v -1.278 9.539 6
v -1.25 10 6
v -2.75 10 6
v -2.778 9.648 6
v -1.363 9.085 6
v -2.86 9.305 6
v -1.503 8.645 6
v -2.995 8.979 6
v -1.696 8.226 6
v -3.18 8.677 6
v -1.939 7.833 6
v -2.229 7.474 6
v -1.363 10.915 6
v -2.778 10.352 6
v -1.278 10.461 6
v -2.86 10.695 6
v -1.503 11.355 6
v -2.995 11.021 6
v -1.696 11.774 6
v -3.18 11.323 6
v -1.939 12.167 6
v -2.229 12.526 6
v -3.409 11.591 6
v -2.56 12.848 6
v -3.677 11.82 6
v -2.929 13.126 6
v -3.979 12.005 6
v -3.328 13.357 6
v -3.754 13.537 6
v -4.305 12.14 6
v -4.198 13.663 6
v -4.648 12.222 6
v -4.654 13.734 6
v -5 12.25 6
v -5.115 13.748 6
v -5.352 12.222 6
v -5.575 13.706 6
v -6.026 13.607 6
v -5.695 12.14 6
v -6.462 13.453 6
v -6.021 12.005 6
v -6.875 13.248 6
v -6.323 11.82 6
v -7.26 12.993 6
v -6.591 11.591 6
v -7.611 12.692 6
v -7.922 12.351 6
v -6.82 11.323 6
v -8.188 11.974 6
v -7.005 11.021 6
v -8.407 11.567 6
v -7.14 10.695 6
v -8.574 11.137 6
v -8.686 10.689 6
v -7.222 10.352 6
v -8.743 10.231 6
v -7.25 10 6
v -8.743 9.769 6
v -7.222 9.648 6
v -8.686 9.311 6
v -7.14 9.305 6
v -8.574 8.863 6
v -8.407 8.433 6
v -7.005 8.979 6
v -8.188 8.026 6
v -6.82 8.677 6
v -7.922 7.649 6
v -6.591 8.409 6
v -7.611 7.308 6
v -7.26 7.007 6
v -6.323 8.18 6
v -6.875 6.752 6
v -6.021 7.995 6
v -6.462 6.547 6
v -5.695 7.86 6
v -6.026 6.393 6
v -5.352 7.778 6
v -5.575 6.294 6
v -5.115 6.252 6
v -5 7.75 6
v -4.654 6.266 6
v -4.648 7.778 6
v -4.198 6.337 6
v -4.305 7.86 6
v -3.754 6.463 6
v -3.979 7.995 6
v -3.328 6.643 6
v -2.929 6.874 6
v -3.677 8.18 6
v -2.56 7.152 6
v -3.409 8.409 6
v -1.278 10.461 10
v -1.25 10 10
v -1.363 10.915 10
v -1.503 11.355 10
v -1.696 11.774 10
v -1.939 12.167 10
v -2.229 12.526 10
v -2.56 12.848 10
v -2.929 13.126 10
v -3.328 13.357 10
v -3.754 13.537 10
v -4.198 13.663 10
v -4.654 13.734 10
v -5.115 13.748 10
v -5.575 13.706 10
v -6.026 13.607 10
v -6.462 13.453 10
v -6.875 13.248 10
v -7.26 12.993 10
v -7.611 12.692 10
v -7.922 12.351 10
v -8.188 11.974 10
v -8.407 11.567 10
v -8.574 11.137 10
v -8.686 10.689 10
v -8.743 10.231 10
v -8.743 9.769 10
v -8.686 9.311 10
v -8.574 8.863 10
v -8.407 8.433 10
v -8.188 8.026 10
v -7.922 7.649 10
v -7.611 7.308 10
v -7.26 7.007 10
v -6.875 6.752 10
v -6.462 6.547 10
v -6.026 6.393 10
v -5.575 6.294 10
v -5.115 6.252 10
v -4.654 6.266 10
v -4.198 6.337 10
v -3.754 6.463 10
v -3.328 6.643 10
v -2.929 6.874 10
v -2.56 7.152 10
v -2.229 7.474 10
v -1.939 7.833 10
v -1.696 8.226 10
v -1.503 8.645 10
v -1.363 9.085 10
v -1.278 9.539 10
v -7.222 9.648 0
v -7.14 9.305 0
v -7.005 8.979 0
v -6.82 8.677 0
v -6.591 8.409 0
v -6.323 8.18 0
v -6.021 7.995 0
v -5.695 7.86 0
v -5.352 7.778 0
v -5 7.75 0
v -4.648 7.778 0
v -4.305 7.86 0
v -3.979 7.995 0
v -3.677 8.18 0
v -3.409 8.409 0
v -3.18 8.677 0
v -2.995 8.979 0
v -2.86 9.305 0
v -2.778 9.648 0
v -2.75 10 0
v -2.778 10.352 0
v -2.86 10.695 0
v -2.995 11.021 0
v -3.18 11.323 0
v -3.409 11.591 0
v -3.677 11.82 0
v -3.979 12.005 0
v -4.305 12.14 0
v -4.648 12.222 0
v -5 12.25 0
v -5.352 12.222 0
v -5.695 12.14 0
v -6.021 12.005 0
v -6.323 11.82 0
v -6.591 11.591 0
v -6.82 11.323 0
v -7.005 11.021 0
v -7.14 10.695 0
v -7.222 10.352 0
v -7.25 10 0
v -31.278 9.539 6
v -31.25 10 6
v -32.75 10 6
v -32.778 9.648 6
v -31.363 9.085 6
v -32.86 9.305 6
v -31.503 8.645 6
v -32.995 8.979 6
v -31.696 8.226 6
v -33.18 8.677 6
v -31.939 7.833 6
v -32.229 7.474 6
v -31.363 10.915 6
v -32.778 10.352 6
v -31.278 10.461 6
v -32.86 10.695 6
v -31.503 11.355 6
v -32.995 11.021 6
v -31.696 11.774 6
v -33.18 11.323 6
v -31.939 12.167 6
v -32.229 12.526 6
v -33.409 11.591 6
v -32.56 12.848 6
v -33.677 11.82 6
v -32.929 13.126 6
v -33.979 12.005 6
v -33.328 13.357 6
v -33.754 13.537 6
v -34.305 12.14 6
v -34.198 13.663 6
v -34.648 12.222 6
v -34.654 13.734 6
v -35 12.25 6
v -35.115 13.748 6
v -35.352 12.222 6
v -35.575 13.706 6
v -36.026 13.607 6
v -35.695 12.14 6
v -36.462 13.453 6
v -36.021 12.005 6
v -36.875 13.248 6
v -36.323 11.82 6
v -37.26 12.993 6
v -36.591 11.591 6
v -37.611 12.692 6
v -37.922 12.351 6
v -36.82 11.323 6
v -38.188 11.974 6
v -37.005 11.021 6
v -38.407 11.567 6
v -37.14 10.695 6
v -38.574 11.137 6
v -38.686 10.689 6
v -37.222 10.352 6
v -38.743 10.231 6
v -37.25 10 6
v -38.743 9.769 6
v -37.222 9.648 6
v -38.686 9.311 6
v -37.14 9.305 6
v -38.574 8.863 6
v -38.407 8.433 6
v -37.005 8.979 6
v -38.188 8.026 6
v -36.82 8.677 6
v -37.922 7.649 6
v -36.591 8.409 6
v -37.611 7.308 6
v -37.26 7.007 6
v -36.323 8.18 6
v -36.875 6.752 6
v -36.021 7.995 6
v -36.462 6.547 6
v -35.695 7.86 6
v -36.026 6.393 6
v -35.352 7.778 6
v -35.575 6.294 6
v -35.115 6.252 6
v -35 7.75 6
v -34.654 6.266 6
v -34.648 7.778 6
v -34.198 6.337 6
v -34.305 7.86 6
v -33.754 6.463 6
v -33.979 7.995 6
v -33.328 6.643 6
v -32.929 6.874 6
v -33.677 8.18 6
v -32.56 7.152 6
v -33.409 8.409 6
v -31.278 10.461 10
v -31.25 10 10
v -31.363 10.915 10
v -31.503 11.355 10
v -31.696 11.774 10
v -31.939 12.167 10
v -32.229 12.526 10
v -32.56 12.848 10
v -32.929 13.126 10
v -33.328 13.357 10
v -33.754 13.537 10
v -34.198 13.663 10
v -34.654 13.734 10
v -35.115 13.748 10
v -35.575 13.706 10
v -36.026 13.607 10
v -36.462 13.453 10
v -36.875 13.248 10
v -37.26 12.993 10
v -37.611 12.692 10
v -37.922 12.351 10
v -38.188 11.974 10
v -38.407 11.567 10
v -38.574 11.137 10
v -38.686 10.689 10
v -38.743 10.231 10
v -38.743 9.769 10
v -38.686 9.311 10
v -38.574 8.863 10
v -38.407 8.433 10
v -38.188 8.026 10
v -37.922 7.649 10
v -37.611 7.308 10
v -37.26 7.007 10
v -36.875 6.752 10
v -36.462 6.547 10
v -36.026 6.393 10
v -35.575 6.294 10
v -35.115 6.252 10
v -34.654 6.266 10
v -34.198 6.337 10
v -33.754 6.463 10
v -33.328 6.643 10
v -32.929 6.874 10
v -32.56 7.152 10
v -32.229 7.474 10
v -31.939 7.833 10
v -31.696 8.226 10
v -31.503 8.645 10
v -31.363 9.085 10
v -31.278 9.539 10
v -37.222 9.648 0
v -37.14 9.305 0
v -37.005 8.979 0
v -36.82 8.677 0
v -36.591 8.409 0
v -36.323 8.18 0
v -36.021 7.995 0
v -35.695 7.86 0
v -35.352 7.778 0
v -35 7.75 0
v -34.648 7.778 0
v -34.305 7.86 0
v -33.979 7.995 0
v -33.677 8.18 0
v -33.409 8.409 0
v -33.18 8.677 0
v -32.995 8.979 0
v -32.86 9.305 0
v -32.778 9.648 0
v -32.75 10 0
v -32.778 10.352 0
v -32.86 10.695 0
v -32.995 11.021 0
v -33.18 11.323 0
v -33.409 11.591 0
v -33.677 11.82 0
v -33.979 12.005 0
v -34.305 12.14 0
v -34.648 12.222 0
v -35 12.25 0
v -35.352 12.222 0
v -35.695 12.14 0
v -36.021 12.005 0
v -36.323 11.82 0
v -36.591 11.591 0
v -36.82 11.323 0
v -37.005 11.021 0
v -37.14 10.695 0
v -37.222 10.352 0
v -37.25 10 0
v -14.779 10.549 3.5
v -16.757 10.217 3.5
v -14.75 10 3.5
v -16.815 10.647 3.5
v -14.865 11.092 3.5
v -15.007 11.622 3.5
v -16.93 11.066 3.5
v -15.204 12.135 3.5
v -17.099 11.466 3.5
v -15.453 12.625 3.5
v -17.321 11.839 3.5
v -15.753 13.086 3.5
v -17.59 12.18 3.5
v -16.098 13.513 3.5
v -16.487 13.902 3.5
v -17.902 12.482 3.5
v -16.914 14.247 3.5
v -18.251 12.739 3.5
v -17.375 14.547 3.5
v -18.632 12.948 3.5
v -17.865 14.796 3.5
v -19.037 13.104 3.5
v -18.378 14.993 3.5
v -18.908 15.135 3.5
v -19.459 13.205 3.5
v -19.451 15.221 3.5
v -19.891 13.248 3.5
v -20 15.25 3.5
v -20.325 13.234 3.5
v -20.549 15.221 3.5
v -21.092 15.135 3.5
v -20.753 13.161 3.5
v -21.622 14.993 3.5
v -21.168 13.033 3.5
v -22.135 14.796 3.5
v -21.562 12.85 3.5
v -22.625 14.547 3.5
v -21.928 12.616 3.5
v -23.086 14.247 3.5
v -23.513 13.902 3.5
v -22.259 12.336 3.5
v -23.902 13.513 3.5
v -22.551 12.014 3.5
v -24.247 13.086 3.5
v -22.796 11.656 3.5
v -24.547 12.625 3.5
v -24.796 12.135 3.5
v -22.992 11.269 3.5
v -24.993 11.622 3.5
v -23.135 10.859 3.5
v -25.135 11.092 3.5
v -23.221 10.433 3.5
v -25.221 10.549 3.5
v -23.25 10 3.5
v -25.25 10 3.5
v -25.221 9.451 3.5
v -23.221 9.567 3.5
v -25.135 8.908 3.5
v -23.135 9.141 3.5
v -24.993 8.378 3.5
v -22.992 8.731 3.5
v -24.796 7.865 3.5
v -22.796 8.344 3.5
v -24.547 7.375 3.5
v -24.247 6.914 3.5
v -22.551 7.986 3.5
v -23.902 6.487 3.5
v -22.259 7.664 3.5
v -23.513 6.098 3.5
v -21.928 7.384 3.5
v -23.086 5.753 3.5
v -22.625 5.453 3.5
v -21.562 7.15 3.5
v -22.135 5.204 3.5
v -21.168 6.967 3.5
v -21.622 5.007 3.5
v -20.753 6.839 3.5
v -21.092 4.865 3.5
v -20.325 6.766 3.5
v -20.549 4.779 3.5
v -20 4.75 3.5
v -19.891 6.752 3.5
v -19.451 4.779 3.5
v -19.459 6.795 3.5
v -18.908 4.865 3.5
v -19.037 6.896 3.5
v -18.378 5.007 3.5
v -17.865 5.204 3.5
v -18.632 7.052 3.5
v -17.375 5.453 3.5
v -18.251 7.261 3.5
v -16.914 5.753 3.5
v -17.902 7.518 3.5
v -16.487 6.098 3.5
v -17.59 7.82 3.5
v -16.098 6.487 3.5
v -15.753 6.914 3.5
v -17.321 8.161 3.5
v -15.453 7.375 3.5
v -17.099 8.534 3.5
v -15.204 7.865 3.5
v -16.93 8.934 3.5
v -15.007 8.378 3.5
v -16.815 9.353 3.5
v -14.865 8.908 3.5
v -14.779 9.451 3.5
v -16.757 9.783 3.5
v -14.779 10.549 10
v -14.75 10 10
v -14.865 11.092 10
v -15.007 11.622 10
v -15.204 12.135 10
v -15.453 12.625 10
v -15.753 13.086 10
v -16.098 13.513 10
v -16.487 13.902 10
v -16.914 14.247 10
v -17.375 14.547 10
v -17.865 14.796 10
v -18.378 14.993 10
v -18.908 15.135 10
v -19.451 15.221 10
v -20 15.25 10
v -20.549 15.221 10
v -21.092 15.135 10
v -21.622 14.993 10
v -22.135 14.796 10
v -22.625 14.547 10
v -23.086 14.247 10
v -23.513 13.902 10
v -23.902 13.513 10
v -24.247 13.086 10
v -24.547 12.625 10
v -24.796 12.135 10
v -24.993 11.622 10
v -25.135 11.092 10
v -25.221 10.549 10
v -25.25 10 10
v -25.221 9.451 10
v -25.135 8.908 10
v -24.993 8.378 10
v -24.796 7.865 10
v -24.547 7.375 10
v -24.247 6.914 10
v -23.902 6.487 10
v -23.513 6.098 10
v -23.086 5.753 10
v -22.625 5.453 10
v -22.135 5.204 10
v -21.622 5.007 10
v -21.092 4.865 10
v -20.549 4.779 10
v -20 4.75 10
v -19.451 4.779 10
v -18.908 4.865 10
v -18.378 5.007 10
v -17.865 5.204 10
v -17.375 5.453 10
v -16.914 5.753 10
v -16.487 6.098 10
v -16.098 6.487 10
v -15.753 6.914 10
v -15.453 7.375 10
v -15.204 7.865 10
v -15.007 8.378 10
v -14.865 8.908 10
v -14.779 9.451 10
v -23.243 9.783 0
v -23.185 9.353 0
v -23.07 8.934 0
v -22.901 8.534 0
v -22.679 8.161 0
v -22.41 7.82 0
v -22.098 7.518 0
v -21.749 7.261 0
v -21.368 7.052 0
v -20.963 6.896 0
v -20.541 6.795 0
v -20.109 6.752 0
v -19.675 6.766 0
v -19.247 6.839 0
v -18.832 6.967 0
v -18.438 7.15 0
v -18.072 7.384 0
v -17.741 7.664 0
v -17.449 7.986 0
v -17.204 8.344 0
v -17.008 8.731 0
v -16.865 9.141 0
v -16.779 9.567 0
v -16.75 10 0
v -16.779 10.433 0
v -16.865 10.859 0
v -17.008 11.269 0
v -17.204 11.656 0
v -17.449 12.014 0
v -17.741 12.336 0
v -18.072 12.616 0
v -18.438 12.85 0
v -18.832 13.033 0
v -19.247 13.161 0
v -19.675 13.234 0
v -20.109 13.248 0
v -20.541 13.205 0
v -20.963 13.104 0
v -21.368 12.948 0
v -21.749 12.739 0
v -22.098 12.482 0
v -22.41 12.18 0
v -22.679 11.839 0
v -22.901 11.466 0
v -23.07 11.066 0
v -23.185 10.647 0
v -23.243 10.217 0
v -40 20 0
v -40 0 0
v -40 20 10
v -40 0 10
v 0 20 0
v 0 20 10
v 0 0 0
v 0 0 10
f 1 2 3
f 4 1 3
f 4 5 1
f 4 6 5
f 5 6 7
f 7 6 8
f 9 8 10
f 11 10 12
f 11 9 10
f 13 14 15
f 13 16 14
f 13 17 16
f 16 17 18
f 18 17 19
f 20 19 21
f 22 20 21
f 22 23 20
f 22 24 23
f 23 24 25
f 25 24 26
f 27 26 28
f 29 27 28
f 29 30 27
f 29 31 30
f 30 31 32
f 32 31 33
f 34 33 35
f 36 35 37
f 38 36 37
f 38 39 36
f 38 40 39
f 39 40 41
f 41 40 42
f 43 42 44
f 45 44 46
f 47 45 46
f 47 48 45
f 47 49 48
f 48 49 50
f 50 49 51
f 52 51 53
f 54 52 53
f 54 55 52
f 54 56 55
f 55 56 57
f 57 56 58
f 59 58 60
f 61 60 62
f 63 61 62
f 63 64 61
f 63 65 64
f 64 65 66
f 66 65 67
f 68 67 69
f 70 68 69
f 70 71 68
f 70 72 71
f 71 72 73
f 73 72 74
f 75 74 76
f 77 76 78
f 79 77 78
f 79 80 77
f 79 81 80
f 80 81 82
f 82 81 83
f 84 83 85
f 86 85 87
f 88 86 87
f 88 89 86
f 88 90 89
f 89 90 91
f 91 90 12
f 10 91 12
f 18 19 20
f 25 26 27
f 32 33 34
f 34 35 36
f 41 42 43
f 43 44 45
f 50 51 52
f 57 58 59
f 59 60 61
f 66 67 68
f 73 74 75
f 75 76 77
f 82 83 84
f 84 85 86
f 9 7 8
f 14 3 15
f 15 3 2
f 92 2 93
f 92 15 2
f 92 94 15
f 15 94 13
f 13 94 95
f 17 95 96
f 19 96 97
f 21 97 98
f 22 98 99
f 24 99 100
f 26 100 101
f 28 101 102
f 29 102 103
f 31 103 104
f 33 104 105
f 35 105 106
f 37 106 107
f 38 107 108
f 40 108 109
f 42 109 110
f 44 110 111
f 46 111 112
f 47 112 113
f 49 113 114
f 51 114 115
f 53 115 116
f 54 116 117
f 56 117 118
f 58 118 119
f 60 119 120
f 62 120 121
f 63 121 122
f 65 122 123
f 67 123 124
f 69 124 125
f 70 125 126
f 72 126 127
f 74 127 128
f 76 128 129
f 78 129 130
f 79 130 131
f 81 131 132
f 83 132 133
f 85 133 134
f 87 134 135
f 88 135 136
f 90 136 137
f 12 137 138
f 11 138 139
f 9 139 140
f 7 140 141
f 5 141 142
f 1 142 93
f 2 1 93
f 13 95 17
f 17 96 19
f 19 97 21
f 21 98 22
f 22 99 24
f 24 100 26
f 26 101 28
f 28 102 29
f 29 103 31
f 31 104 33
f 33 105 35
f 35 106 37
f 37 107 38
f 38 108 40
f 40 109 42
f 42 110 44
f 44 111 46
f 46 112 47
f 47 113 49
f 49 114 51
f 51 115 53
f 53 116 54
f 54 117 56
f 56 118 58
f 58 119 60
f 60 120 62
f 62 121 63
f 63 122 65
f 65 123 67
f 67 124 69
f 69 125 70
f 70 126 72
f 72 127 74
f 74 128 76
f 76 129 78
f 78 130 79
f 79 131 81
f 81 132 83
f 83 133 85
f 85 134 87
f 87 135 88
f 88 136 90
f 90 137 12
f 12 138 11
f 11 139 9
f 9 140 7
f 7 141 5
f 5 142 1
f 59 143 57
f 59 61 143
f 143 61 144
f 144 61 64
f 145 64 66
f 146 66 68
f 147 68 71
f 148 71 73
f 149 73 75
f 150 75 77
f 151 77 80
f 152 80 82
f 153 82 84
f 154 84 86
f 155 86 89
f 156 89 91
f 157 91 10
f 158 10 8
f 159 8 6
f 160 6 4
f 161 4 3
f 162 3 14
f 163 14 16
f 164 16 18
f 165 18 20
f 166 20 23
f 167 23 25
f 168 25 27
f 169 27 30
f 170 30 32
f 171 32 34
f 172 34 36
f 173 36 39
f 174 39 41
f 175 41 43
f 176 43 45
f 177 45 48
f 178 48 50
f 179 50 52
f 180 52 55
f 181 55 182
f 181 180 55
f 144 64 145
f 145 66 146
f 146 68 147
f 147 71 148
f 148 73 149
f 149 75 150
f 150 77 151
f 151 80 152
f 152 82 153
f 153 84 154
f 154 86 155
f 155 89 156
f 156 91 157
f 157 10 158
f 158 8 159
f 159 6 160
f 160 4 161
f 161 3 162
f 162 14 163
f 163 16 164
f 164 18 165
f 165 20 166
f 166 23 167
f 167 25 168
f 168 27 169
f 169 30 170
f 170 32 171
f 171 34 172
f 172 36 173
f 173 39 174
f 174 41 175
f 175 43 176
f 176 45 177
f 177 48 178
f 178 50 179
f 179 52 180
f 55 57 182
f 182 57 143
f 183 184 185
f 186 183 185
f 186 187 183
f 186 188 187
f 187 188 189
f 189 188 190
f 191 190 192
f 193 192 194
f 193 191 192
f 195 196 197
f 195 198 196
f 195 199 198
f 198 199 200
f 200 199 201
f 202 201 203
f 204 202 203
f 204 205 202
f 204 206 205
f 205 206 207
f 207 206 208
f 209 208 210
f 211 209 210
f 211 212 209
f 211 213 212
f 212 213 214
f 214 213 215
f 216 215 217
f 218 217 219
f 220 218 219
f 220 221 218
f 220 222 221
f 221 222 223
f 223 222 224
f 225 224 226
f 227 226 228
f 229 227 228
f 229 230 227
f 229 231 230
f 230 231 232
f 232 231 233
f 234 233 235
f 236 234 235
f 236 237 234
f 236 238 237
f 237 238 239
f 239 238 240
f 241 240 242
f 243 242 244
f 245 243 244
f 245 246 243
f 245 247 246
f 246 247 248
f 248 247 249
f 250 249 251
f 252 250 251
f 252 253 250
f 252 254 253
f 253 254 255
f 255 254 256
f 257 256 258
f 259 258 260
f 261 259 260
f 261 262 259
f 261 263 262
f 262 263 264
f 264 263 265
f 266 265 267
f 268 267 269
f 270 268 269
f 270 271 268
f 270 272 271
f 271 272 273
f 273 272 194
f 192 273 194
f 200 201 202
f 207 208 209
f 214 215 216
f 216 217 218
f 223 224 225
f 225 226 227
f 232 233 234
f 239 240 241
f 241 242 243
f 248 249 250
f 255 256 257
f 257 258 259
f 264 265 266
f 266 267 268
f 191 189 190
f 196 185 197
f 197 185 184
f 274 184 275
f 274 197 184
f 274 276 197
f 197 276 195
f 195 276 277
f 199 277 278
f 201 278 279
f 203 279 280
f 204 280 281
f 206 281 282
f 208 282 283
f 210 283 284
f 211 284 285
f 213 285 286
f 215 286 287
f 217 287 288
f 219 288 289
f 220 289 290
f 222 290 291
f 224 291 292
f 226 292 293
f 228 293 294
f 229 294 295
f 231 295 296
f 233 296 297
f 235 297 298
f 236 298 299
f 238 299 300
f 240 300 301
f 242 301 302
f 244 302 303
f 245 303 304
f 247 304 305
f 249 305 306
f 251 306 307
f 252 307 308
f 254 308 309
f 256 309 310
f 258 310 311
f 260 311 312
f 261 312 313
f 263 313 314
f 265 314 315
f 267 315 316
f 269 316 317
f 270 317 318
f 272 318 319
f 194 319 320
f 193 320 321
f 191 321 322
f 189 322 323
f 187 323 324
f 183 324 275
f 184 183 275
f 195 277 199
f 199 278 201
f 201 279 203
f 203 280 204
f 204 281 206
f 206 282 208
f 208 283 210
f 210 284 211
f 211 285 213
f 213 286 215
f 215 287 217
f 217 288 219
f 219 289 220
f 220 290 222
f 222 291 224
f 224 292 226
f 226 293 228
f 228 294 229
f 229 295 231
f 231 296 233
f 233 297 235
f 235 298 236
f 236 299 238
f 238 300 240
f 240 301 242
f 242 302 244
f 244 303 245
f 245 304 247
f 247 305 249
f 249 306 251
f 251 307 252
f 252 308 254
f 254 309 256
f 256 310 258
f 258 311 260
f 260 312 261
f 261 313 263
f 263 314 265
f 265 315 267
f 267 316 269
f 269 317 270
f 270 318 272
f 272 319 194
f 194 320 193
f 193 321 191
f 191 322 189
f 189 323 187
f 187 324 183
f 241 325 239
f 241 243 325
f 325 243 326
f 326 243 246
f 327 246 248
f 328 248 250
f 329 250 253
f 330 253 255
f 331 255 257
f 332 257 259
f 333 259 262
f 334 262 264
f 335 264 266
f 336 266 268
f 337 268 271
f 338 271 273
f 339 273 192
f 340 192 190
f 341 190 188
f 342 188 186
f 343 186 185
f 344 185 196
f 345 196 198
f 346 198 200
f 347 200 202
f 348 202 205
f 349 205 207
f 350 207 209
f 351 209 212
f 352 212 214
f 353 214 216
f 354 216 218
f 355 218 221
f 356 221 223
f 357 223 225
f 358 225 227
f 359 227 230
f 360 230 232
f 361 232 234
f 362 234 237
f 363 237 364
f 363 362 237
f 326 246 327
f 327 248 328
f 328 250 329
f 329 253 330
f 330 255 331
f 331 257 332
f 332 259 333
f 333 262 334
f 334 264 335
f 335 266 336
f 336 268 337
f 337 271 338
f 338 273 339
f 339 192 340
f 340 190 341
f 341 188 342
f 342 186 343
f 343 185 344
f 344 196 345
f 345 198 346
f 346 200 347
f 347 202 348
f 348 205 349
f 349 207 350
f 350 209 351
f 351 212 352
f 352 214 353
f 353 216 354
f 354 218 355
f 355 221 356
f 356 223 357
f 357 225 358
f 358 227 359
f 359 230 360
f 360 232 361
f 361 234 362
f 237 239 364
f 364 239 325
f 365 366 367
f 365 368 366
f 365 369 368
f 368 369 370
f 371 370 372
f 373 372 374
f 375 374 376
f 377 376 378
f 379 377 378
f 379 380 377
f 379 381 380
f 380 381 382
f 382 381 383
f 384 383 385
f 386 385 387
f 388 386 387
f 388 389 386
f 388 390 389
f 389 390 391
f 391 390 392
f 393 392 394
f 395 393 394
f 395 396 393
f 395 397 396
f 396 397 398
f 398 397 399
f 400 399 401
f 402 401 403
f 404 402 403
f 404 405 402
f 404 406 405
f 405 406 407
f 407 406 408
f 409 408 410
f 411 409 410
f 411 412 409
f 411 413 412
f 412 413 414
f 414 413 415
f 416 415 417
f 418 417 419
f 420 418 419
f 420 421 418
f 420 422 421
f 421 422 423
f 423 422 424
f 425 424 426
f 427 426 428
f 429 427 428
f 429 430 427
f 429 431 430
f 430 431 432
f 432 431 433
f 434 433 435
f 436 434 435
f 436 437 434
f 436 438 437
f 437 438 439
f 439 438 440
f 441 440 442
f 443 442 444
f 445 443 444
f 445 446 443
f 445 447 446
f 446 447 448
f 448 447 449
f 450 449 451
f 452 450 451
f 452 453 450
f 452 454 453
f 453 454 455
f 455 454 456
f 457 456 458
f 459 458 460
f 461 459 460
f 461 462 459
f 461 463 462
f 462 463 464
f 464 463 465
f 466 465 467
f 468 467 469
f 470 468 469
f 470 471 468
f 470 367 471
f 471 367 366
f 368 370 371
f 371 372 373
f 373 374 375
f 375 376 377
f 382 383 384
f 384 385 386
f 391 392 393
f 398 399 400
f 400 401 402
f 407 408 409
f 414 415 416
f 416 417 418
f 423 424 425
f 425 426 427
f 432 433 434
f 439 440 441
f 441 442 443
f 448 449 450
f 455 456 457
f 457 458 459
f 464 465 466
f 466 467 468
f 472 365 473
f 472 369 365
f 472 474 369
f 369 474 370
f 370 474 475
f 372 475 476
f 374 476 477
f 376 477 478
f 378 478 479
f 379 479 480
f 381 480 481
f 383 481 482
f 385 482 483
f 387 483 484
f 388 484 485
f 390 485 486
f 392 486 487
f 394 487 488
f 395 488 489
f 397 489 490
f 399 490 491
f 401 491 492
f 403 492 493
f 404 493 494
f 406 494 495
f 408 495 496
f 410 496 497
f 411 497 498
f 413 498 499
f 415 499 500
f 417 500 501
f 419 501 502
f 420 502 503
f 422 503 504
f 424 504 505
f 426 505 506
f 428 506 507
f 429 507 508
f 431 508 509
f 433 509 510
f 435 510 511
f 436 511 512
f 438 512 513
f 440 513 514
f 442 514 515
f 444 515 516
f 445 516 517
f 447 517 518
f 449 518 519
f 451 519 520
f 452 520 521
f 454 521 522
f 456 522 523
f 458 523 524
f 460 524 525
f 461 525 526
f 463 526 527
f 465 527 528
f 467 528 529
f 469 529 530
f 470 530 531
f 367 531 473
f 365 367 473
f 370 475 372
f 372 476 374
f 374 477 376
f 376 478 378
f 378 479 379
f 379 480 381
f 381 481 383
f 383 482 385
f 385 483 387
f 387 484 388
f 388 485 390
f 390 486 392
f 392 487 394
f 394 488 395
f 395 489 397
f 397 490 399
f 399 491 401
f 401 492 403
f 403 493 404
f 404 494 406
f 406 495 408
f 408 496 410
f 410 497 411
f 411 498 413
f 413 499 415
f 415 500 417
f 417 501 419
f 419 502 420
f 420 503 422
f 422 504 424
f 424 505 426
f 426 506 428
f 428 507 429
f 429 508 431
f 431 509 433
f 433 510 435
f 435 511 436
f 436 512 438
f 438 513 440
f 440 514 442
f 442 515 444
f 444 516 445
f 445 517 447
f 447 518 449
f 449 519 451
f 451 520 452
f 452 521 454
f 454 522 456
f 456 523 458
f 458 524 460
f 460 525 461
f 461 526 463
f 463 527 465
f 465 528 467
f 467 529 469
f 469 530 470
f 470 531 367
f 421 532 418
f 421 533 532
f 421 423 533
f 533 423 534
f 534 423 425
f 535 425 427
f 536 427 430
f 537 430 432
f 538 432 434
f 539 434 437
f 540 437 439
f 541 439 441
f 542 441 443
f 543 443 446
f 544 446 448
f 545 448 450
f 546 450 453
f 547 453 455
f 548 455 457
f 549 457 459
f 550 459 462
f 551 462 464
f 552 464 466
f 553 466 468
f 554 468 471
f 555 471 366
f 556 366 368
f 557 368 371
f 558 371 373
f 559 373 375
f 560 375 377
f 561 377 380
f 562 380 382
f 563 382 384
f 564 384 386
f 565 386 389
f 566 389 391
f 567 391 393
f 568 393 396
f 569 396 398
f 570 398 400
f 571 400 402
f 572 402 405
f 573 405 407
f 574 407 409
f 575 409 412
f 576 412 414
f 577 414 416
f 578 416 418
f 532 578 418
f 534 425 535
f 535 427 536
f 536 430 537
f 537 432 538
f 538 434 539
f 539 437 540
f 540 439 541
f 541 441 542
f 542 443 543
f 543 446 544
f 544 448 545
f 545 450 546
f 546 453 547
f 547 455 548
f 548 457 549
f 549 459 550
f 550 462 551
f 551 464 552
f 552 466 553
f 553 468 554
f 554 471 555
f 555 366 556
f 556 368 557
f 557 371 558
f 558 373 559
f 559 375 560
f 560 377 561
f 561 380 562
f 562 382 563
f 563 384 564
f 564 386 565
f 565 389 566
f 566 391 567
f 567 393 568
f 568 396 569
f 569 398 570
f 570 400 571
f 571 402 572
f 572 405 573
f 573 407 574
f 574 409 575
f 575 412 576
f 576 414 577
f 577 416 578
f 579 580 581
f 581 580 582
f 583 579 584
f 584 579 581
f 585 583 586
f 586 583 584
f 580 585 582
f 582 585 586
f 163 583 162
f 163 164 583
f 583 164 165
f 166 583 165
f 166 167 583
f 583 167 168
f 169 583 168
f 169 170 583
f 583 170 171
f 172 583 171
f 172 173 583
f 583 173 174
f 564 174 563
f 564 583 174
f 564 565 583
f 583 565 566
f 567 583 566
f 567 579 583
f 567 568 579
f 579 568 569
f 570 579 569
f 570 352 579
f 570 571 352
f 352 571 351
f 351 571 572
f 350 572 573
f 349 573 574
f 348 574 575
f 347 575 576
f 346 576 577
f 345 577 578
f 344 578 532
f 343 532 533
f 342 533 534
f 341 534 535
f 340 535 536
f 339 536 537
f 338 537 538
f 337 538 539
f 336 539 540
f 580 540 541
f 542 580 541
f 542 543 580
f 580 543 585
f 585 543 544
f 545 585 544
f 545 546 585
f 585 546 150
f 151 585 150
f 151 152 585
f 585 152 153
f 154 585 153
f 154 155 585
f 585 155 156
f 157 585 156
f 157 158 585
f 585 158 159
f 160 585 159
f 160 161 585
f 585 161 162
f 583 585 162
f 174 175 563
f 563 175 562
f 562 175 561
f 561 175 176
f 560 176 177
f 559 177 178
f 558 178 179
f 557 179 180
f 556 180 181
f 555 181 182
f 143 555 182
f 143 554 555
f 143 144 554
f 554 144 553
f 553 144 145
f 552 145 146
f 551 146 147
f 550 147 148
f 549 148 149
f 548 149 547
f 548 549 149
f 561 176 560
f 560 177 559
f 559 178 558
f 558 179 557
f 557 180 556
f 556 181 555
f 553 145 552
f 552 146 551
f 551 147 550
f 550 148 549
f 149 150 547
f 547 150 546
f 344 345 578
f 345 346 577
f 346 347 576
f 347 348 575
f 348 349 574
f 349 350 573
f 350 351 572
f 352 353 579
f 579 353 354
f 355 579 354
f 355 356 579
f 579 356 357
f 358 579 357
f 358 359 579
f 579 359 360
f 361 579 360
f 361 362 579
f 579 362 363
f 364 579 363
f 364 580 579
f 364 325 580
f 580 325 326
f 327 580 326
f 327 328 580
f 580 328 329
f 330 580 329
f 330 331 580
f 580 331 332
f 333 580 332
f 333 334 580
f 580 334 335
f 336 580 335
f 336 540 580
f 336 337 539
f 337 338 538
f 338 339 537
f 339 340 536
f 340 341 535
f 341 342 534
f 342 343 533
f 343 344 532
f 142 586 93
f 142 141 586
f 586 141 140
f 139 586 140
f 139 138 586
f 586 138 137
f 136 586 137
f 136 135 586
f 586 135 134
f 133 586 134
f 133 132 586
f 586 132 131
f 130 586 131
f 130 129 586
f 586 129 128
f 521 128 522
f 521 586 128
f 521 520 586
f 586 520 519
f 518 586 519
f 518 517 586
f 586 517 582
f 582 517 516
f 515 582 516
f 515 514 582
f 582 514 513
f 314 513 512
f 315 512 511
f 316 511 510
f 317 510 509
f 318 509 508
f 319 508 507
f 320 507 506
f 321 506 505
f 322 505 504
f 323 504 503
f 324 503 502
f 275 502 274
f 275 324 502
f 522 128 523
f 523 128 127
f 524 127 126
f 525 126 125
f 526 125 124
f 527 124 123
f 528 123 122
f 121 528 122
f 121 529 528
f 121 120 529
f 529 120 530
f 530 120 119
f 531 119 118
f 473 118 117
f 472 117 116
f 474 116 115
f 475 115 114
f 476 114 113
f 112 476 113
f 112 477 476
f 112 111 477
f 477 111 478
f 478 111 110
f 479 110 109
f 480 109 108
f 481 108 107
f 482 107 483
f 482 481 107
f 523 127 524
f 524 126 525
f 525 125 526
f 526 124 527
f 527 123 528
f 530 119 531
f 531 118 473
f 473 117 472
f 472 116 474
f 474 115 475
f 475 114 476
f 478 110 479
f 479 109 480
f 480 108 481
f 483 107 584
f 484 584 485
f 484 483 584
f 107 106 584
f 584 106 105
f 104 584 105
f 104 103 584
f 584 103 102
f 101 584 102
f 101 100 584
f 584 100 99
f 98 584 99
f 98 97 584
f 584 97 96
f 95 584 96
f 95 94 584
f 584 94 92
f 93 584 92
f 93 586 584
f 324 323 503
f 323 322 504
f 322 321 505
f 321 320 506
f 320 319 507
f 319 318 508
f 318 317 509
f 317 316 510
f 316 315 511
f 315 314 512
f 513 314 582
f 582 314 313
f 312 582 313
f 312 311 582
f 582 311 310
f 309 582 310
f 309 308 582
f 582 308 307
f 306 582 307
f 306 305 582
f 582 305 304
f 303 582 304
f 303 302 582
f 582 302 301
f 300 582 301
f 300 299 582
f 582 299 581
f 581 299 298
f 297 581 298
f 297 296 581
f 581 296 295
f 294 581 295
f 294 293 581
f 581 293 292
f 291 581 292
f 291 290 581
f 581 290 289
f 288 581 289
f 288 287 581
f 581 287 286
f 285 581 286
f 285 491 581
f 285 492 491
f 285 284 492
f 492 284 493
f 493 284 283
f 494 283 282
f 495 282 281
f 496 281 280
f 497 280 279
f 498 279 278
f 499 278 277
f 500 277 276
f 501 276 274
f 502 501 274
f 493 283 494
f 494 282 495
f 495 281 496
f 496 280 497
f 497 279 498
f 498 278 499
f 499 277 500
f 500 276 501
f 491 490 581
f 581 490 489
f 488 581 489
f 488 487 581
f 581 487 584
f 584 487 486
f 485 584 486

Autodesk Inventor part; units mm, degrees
ref_plane "YZ Plane" through (0, 0, 0) normal (1, 0, 0) x (0, 1, 0)
ref_plane "XZ Plane" through (0, 0, 0) normal (0, 1, 0) x (-1, 0, 0)
ref_plane "XY Plane" through (0, 0, 0) normal (0, 0, 1) x (1, 0, 0)
sketch "Sketch4" plane through (0, 0, 0) normal (0, 0, 1) x (1, 0, 0)
  line L0 (0, 0) -> (-40, 0)
  line L1 (-40, 0) -> (-40, 20)
  line L2 (-40, 20) -> (0, 20)
  line L3 (0, 20) -> (0, 0)
  dimension "d37" = 40
  dimension "d38" = 20
extrude "Extrusion2" add sketch "Sketch4" along normal blind 10
hole "Hole2" at (-20, 10, 10) direction (0, 0, -1) diameter 6.5 depth 10 tip angle 118 counterbore diameter 10.5 counterbore depth 6.5
hole "Hole3" at (-35, 10, 10) direction (0, 0, -1) diameter 4.5 depth 10 tip angle 118 counterbore diameter 7.5 counterbore depth 4
hole "Hole4" at (-5, 10, 10) direction (0, 0, -1) diameter 4.5 depth 10 tip angle 118 counterbore diameter 7.5 counterbore depth 4
properties part number "GARFO" material "Aluminium AW-7020"
